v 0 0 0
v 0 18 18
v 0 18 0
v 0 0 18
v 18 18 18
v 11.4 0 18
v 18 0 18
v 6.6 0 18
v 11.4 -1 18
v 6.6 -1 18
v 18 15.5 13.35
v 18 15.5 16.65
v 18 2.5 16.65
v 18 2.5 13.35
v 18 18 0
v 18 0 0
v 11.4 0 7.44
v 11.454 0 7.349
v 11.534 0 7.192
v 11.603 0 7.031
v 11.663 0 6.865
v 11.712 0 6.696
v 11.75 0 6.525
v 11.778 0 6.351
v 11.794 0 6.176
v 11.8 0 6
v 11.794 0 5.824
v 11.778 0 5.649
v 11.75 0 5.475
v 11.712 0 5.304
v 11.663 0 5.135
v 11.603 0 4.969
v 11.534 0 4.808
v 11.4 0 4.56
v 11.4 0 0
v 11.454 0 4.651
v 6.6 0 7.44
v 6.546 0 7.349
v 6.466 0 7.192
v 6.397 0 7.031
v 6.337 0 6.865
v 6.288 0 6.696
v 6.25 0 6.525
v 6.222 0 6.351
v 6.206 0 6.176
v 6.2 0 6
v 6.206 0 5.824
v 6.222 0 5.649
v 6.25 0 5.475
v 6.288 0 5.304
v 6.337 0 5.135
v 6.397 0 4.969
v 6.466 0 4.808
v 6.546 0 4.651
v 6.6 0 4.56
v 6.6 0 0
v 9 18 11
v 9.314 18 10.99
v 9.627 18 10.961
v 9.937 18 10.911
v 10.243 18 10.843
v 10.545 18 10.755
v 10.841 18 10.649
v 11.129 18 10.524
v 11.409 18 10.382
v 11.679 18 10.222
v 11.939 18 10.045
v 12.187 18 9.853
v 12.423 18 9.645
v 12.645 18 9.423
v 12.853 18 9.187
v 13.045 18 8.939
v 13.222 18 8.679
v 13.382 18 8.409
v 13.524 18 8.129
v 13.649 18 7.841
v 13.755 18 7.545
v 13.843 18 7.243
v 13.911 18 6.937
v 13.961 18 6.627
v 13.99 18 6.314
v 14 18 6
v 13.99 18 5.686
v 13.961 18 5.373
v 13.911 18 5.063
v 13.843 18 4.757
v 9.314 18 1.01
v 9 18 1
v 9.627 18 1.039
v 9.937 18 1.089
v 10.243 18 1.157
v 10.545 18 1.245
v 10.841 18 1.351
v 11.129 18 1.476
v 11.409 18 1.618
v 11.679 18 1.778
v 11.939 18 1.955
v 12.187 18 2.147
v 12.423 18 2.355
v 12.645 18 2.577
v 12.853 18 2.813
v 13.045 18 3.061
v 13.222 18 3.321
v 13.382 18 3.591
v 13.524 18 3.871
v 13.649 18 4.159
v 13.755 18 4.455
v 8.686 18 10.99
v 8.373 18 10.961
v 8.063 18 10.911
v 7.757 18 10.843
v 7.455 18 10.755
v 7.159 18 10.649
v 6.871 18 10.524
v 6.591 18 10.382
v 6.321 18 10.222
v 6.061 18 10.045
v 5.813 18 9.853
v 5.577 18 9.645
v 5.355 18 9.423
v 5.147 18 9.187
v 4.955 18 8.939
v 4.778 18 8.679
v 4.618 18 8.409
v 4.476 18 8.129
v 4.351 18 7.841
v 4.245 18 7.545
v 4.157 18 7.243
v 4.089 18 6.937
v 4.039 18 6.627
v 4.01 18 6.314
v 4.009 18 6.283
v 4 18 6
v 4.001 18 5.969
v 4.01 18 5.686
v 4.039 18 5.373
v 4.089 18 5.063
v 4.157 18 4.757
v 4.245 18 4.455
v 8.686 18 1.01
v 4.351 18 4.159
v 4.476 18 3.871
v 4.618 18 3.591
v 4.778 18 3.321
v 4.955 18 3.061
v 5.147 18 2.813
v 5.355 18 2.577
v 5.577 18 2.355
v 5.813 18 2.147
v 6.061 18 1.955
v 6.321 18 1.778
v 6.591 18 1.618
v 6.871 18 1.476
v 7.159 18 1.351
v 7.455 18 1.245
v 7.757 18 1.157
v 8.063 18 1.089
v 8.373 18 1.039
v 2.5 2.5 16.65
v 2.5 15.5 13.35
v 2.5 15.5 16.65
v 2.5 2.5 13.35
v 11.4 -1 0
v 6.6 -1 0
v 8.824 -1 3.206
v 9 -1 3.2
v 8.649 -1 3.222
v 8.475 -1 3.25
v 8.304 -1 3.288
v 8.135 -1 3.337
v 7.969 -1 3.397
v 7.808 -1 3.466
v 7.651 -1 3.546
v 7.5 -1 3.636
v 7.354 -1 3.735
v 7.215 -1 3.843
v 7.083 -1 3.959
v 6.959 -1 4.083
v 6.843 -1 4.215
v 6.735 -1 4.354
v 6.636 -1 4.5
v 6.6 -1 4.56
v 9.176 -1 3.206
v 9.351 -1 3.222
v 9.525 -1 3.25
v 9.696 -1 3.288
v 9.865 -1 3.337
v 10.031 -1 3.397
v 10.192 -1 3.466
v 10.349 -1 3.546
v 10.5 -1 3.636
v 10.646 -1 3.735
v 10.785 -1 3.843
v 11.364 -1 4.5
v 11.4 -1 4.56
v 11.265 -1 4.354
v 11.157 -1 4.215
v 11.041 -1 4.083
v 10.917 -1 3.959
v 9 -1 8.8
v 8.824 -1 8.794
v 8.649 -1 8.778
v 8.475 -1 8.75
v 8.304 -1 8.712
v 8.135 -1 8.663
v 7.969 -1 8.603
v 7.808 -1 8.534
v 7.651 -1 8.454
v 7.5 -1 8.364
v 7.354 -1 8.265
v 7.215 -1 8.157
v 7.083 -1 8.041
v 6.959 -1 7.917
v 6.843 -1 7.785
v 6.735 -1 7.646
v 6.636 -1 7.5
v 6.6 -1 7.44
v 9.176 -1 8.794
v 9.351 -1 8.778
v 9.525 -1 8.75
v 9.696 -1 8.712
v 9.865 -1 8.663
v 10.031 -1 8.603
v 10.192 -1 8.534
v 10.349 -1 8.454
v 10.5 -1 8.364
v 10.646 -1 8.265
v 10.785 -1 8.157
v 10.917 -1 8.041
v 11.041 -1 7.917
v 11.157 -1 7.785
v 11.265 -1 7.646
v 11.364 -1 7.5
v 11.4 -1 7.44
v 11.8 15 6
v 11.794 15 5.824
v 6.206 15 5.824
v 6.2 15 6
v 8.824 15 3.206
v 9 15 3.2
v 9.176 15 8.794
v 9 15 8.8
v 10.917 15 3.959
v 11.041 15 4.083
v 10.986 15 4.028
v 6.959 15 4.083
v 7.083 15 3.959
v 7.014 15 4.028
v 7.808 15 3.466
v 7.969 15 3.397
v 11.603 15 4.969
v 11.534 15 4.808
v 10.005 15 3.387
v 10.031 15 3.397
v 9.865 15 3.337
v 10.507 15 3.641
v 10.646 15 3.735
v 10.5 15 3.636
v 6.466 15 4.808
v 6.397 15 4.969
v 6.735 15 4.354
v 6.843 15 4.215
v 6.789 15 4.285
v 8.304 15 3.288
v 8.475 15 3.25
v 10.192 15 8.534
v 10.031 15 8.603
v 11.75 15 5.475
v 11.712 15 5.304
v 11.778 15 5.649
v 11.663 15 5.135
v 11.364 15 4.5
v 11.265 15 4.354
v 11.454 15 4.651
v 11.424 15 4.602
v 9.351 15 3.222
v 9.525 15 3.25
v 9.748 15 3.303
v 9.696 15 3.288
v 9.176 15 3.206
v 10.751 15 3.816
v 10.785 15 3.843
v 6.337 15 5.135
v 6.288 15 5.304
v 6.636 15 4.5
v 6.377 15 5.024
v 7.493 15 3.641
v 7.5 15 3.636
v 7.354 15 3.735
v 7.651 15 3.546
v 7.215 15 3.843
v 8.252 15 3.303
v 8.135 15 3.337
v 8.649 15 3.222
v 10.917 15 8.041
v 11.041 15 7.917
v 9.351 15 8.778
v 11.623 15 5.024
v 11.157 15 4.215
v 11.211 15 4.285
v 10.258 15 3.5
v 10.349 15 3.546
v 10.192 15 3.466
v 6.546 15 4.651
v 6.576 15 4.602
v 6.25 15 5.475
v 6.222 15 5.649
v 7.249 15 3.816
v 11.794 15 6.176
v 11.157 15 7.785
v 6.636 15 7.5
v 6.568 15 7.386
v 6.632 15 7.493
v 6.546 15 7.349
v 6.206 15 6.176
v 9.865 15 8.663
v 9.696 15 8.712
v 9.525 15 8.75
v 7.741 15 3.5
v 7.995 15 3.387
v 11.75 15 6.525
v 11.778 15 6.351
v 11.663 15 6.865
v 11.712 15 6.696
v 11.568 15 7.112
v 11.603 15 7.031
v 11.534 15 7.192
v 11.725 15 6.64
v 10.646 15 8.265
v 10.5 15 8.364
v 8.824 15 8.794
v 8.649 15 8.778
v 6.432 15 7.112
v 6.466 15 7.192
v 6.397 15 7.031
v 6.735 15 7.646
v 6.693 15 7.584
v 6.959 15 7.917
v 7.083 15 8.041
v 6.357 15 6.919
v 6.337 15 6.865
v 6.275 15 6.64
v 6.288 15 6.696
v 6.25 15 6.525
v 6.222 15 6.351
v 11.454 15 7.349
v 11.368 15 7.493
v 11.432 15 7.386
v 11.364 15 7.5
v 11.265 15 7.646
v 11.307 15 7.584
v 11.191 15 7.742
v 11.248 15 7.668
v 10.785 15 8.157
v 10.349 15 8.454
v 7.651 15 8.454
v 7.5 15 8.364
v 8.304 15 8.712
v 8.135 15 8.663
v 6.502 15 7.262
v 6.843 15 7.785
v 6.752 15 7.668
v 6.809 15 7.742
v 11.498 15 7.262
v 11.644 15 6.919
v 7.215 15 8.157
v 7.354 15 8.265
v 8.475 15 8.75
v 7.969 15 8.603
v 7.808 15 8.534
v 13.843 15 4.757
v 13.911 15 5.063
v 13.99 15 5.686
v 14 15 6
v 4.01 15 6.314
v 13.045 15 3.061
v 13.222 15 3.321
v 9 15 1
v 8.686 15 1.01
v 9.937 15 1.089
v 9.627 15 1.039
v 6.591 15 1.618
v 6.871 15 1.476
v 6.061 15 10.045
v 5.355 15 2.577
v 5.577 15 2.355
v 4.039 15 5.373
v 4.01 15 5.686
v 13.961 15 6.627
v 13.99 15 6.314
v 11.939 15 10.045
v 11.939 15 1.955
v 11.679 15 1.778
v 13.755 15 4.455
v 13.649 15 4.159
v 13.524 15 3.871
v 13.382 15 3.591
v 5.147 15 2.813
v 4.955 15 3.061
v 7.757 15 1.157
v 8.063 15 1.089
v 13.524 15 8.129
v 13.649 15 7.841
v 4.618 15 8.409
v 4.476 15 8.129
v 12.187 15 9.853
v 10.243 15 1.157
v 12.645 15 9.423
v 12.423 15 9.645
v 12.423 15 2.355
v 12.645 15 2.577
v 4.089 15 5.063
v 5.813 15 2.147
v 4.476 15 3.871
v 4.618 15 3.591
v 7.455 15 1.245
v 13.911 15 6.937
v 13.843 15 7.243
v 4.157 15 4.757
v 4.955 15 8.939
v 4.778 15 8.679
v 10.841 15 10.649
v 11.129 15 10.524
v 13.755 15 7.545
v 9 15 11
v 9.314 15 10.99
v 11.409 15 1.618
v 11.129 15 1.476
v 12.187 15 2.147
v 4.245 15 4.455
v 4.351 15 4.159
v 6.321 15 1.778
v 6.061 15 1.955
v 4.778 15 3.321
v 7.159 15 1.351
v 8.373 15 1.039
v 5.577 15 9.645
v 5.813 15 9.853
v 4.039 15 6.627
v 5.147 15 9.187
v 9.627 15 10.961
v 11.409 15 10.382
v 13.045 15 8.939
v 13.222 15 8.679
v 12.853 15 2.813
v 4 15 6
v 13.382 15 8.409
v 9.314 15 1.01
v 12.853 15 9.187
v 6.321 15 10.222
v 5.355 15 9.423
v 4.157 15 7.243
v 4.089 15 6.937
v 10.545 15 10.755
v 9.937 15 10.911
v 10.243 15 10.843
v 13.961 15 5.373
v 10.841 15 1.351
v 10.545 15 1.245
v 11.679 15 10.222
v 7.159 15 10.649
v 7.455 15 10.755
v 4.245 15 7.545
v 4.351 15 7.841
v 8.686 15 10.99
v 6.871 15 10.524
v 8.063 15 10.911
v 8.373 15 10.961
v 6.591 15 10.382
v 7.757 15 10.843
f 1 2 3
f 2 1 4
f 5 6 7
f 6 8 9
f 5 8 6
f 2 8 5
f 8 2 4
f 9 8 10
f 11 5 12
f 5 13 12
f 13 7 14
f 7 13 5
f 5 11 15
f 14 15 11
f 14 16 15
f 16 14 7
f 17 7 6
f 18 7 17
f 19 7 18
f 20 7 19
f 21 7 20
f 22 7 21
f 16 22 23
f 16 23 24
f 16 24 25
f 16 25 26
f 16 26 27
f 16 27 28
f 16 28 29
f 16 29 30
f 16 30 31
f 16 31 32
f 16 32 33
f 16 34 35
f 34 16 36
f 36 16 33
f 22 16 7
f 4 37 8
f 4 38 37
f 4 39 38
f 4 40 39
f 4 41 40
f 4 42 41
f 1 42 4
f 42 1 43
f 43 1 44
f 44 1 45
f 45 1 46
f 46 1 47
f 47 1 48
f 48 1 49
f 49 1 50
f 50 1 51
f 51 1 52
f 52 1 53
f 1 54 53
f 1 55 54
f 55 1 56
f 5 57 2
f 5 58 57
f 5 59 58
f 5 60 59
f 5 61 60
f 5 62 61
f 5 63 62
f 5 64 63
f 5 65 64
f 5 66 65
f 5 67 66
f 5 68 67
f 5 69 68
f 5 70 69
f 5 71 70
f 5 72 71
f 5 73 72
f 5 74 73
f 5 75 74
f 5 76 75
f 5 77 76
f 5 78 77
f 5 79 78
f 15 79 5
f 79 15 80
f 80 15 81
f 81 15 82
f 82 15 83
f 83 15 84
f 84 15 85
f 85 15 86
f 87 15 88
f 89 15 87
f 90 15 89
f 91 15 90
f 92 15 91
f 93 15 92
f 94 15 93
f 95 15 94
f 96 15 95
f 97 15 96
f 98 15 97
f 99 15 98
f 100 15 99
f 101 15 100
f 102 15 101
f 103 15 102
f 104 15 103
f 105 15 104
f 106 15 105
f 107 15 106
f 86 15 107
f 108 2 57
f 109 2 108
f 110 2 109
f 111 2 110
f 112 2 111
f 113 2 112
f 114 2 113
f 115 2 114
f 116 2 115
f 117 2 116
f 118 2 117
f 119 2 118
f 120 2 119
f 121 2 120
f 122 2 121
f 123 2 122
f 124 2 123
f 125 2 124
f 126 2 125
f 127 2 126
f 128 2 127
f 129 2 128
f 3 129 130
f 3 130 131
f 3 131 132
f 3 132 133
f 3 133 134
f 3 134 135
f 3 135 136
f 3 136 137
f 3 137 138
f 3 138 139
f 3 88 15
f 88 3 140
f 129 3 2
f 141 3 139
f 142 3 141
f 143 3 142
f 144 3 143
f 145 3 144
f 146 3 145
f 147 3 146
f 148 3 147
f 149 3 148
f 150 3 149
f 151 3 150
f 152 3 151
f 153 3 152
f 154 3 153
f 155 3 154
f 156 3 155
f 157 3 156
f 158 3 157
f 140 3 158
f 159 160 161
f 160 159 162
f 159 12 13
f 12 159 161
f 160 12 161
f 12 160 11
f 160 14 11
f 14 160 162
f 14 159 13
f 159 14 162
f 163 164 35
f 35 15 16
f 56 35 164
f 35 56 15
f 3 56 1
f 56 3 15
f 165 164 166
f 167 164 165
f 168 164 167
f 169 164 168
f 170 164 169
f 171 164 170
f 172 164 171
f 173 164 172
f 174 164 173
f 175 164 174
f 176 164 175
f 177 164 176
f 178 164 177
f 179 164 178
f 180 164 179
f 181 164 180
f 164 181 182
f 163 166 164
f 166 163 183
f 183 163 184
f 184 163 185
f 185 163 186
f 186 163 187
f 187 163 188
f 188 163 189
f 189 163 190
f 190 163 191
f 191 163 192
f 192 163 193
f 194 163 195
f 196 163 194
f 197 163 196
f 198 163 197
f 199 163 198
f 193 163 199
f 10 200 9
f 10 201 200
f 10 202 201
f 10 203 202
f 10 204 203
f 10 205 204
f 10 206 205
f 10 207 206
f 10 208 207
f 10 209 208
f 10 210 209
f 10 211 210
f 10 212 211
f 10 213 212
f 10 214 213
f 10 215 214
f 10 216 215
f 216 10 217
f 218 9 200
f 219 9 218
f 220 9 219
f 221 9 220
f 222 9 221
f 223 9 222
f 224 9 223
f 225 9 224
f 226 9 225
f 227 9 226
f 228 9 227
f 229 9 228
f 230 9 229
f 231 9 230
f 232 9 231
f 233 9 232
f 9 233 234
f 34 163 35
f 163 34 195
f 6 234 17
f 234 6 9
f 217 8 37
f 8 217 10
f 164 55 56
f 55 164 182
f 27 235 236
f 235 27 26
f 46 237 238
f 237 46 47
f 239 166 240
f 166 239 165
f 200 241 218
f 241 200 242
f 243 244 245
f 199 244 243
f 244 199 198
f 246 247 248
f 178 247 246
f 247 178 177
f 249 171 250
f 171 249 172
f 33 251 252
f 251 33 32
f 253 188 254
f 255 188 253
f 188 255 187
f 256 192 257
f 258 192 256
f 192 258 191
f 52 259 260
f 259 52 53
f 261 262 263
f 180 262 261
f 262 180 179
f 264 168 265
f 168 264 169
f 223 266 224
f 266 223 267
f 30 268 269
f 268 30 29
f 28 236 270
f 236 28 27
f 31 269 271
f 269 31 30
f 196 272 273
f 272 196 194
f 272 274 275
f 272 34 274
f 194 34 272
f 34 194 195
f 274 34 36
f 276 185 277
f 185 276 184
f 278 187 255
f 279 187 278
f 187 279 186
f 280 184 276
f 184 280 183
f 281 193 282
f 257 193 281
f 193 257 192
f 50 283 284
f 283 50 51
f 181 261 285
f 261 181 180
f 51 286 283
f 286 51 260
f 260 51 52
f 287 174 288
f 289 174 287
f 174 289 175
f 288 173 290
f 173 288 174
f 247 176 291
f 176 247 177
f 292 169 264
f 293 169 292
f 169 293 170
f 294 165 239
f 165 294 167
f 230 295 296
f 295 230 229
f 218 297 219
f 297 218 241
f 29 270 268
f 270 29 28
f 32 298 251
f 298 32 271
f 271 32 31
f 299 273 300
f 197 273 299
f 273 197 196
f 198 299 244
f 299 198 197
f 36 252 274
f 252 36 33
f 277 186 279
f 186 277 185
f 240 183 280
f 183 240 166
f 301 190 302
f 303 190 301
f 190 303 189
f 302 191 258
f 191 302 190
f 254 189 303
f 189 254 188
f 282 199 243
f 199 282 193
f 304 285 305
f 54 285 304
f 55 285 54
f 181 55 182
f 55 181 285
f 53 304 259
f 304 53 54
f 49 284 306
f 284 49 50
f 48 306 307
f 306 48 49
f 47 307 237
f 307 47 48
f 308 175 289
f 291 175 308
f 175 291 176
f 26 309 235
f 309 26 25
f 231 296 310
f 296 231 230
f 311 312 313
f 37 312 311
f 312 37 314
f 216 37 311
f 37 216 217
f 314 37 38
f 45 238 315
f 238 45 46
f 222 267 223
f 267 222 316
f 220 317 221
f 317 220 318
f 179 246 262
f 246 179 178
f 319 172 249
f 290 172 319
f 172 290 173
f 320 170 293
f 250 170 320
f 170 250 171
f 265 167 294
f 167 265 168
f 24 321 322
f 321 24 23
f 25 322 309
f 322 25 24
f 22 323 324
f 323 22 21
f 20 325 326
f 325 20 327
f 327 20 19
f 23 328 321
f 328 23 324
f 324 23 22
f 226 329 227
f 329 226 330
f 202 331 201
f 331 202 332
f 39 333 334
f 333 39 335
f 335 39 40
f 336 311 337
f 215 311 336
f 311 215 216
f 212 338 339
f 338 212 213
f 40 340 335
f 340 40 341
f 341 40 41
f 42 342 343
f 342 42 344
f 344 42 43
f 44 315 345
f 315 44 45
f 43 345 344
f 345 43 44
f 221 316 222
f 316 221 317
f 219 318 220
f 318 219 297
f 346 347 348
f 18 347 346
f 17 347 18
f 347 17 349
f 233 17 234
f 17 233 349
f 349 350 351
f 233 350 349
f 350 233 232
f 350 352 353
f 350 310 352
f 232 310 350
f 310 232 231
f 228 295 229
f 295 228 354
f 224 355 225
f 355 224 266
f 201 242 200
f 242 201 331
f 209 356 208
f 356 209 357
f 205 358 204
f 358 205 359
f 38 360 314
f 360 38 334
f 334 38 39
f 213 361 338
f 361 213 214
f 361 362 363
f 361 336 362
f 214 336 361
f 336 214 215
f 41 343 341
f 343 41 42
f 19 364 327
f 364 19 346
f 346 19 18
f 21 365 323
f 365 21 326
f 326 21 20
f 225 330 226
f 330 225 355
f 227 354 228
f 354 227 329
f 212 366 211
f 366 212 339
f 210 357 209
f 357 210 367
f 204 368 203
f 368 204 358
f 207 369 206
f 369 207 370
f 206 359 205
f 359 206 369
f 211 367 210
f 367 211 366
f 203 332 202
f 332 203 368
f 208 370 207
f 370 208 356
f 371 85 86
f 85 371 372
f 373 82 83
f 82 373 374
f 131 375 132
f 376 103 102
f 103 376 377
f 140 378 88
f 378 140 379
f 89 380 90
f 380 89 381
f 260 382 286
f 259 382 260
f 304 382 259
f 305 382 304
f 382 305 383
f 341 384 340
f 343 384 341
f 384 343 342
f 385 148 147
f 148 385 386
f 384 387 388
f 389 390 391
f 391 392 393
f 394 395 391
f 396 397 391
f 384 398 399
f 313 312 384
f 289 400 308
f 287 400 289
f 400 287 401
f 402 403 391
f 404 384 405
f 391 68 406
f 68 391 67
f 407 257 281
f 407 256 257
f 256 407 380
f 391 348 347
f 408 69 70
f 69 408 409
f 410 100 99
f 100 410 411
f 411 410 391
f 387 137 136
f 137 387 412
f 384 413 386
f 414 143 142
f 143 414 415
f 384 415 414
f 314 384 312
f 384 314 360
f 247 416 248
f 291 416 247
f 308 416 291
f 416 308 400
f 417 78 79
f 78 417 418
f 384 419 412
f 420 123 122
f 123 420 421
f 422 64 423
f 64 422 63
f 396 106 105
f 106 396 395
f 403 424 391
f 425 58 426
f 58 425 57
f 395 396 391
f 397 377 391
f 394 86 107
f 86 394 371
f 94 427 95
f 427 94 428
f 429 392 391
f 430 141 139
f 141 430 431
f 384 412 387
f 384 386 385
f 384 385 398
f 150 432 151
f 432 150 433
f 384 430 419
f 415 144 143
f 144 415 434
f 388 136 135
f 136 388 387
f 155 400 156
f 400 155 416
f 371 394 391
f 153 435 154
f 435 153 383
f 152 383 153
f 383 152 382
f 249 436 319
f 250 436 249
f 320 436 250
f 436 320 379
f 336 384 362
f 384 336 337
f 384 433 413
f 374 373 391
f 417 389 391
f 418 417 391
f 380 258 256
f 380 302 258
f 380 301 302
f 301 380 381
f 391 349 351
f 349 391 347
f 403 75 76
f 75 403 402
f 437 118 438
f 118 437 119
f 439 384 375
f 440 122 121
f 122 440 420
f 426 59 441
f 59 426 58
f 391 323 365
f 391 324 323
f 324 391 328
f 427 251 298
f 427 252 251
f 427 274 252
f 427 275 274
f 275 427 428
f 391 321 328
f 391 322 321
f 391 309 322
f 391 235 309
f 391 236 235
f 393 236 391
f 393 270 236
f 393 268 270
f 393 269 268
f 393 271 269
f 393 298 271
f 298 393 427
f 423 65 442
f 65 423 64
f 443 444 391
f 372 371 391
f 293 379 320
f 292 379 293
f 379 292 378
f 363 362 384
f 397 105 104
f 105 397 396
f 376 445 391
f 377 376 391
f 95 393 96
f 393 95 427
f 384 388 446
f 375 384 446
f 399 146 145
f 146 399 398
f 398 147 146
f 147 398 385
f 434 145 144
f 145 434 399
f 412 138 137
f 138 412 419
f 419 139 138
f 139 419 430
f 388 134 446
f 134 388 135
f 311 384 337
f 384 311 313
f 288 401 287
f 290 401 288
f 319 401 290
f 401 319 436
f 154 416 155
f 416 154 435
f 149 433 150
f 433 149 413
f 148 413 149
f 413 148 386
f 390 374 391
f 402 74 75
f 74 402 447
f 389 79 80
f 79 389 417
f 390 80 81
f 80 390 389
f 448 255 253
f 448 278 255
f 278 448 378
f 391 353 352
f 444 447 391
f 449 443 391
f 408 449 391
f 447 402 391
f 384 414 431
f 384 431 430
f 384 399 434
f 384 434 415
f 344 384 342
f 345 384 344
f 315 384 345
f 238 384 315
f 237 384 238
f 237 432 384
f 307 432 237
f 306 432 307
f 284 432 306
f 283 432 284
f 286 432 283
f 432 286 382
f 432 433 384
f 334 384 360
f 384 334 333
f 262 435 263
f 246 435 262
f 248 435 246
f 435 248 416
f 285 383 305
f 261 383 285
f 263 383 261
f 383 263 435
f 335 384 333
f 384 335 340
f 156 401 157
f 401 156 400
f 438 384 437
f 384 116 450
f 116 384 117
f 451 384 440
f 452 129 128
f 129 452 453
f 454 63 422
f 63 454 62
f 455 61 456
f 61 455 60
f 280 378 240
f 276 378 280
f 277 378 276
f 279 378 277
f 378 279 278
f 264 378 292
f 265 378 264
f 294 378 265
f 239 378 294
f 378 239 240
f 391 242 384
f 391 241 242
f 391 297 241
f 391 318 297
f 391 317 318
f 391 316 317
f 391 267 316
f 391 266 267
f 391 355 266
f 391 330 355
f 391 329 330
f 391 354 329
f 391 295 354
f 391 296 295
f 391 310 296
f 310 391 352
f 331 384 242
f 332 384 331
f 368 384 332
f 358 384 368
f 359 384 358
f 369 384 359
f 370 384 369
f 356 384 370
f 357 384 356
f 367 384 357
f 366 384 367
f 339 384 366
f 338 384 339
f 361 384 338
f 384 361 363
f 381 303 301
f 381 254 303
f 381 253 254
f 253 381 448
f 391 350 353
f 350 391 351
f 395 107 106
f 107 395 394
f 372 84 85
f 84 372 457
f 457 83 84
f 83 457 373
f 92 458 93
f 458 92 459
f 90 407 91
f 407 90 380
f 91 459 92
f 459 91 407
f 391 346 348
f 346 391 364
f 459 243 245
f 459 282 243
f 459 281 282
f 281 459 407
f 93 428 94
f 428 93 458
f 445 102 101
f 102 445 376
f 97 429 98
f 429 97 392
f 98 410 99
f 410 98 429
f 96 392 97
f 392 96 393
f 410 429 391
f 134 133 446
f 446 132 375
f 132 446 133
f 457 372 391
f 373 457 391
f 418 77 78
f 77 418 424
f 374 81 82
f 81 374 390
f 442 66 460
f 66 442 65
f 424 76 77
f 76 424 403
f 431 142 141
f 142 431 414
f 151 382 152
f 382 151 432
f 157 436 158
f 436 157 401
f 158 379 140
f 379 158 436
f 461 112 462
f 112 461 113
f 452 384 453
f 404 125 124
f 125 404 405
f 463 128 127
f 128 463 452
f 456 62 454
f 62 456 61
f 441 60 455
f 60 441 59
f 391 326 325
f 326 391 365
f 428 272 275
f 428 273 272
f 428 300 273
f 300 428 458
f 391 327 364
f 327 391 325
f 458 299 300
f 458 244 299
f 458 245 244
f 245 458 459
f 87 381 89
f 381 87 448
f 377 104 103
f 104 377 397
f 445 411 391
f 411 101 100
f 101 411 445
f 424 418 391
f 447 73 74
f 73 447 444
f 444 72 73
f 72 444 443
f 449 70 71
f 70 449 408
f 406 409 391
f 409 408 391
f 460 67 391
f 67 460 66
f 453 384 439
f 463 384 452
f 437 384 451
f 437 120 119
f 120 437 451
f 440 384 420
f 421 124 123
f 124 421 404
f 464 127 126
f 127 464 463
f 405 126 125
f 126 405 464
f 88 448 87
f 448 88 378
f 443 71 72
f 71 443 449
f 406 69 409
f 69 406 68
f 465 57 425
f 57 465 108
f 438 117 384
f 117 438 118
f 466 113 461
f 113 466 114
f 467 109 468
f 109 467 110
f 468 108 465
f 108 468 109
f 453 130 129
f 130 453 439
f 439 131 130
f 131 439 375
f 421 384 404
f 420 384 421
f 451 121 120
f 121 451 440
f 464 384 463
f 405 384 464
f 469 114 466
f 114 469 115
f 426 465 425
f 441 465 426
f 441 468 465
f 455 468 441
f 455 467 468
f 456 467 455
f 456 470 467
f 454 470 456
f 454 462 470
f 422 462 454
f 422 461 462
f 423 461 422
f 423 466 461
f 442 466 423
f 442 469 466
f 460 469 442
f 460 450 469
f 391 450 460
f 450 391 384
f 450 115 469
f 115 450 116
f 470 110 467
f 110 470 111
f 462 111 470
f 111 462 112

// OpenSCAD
// file: part-lib.scad
module BeltRecess(){
    hull(){
        translate([107, 0, 0]) cylinder(d = 52, h= 50);
        translate([33, 0, 0]) cylinder(d = 34, h= 50);
    }
}



module ScrewSlot(diameter, width, length){
    hull(){
        cylinder(d = diameter, h = length);
        translate([0, width]) cylinder(d = diameter, h = length);
    }
}

module FixedLeadScrewBushing(){  
    rotate([0, -90, 0]) translate([0, 0, 0]) union(){
        translate([0, 0, -10]) intersection(){
            cylinder(d = 54, h= 20, center = true);
            cube([46, 46, 20], center = true);
        }
        
        translate([0, 0, 0]) cylinder(d = 36, h = 18);
        translate([0, 0, 18]) cylinder(d = 18, h = 100);
        
        for(i = [45:90:315]){
            screwRadius = 22;
            translate([screwRadius * sin(i), screwRadius * cos(i), 0]) cylinder(d = 5.2, h = 116);
        }
    }
}

module SupportLeadScrewBushing(){  
    rotate([-90, 0, 90]) translate([-21, -27, -20]) union(){
        intersection(){
            translate([21, 27, 0]) cylinder(d = 54, h= 20);
            cube([42, 60, 20]);
        }
        
        translate([21, 27, 20]) cylinder(d = 36, h = 7);
        translate([21, 27, 7]) cylinder(d = 16, h = 100);
        
        translate([6, 12, 7]) cylinder(d = 5.2, h = 116);
        translate([36, 42, 7]) cylinder(d = 5.2, h = 116);
        translate([6, 42, 7]) cylinder(d = 5.2, h = 116);
        translate([36, 12, 7]) cylinder(d = 5.2, h = 116);
    }
}

module NEMA24MotorMount(slidePlay){
    union(){
        cube([102, 62 + slidePlay, 62]);
        
        translate([102, 7.5, 7.5]) rotate([0, 90, 0]) {
            ScrewSlot(5, slidePlay, 100);
        }
        
        translate([102, (62 + slidePlay) - 7.5, 7.5]) rotate([0, 270, 180]) {
            ScrewSlot(5, slidePlay, 100);
        }
        
        translate([102, (62 + slidePlay) - 7.5, 62 - 7.5]) rotate([0, 270, 180]) {
            ScrewSlot(5, slidePlay, 100);
        }
        
        translate([102, 7.5, 62 - 7.5]) rotate([0, 90, 0]) {
            ScrewSlot(5, slidePlay, 100);
        }
        
        translate([102, 31, 31]) rotate([0, 90, 0]) {
            ScrewSlot(40, slidePlay, 100);
        }
    }
}

module TSlotGuide(length, guideCount){
    translate([0, 0, 0.5]){
        for (index = [0: guideCount - 1]) {
            translate([(length / 2), 10 + (index * 20), 0]) cube([length, 4.8, 1], center = true);
        }
    }
}

module LimitSensorMount(){
    translate([0, 0, 0]) difference(){
        union(){
            cube([32, 20, 5]);
        }
        
        translate([2.5, 1.5, 3.5]) cube([27, 17, 2]);
        
        translate([25.5, 10, -50]) cylinder(d = 3.8, h = 100);
    }
}

module CompactLimitSensorMount(){
    translate([0, 0, 0]) difference(){
        union(){
            cube([27, 20, 5]);
        }
        
        translate([0, 1.5, 3.5]) cube([27, 17, 2]);
        
        translate([20.5, 10, -50]) cylinder(d = 3.8, h = 100);
    }
}

module MagnetHolder(){
    translate([0, 0, 0]) difference(){
        union(){
            cube([18, 18, 6]);
        }
        
        translate([2.5, 2.5, 1.35]) cube([19, 13, 3.3]);
    }
}
// main file
$fn = 100;
include <part-lib.scad>

module YMagnetMount(){
    difference(){
        union(){
            cube([18, 18, 12]);
            translate([0, 0, 12]) MagnetHolder();
            translate([19, 0, 0]) rotate([0, 270, 90]) TSlotGuide(18, 1);
        }
        
        translate([9, -10, 6]) rotate([-90, 0 ,0]) cylinder(d = 5.6, h = 30);
        translate([9, 15, 6]) rotate([-90, 0 ,0]) cylinder(d = 10, h = 30);
    }
}

YMagnetMount();
